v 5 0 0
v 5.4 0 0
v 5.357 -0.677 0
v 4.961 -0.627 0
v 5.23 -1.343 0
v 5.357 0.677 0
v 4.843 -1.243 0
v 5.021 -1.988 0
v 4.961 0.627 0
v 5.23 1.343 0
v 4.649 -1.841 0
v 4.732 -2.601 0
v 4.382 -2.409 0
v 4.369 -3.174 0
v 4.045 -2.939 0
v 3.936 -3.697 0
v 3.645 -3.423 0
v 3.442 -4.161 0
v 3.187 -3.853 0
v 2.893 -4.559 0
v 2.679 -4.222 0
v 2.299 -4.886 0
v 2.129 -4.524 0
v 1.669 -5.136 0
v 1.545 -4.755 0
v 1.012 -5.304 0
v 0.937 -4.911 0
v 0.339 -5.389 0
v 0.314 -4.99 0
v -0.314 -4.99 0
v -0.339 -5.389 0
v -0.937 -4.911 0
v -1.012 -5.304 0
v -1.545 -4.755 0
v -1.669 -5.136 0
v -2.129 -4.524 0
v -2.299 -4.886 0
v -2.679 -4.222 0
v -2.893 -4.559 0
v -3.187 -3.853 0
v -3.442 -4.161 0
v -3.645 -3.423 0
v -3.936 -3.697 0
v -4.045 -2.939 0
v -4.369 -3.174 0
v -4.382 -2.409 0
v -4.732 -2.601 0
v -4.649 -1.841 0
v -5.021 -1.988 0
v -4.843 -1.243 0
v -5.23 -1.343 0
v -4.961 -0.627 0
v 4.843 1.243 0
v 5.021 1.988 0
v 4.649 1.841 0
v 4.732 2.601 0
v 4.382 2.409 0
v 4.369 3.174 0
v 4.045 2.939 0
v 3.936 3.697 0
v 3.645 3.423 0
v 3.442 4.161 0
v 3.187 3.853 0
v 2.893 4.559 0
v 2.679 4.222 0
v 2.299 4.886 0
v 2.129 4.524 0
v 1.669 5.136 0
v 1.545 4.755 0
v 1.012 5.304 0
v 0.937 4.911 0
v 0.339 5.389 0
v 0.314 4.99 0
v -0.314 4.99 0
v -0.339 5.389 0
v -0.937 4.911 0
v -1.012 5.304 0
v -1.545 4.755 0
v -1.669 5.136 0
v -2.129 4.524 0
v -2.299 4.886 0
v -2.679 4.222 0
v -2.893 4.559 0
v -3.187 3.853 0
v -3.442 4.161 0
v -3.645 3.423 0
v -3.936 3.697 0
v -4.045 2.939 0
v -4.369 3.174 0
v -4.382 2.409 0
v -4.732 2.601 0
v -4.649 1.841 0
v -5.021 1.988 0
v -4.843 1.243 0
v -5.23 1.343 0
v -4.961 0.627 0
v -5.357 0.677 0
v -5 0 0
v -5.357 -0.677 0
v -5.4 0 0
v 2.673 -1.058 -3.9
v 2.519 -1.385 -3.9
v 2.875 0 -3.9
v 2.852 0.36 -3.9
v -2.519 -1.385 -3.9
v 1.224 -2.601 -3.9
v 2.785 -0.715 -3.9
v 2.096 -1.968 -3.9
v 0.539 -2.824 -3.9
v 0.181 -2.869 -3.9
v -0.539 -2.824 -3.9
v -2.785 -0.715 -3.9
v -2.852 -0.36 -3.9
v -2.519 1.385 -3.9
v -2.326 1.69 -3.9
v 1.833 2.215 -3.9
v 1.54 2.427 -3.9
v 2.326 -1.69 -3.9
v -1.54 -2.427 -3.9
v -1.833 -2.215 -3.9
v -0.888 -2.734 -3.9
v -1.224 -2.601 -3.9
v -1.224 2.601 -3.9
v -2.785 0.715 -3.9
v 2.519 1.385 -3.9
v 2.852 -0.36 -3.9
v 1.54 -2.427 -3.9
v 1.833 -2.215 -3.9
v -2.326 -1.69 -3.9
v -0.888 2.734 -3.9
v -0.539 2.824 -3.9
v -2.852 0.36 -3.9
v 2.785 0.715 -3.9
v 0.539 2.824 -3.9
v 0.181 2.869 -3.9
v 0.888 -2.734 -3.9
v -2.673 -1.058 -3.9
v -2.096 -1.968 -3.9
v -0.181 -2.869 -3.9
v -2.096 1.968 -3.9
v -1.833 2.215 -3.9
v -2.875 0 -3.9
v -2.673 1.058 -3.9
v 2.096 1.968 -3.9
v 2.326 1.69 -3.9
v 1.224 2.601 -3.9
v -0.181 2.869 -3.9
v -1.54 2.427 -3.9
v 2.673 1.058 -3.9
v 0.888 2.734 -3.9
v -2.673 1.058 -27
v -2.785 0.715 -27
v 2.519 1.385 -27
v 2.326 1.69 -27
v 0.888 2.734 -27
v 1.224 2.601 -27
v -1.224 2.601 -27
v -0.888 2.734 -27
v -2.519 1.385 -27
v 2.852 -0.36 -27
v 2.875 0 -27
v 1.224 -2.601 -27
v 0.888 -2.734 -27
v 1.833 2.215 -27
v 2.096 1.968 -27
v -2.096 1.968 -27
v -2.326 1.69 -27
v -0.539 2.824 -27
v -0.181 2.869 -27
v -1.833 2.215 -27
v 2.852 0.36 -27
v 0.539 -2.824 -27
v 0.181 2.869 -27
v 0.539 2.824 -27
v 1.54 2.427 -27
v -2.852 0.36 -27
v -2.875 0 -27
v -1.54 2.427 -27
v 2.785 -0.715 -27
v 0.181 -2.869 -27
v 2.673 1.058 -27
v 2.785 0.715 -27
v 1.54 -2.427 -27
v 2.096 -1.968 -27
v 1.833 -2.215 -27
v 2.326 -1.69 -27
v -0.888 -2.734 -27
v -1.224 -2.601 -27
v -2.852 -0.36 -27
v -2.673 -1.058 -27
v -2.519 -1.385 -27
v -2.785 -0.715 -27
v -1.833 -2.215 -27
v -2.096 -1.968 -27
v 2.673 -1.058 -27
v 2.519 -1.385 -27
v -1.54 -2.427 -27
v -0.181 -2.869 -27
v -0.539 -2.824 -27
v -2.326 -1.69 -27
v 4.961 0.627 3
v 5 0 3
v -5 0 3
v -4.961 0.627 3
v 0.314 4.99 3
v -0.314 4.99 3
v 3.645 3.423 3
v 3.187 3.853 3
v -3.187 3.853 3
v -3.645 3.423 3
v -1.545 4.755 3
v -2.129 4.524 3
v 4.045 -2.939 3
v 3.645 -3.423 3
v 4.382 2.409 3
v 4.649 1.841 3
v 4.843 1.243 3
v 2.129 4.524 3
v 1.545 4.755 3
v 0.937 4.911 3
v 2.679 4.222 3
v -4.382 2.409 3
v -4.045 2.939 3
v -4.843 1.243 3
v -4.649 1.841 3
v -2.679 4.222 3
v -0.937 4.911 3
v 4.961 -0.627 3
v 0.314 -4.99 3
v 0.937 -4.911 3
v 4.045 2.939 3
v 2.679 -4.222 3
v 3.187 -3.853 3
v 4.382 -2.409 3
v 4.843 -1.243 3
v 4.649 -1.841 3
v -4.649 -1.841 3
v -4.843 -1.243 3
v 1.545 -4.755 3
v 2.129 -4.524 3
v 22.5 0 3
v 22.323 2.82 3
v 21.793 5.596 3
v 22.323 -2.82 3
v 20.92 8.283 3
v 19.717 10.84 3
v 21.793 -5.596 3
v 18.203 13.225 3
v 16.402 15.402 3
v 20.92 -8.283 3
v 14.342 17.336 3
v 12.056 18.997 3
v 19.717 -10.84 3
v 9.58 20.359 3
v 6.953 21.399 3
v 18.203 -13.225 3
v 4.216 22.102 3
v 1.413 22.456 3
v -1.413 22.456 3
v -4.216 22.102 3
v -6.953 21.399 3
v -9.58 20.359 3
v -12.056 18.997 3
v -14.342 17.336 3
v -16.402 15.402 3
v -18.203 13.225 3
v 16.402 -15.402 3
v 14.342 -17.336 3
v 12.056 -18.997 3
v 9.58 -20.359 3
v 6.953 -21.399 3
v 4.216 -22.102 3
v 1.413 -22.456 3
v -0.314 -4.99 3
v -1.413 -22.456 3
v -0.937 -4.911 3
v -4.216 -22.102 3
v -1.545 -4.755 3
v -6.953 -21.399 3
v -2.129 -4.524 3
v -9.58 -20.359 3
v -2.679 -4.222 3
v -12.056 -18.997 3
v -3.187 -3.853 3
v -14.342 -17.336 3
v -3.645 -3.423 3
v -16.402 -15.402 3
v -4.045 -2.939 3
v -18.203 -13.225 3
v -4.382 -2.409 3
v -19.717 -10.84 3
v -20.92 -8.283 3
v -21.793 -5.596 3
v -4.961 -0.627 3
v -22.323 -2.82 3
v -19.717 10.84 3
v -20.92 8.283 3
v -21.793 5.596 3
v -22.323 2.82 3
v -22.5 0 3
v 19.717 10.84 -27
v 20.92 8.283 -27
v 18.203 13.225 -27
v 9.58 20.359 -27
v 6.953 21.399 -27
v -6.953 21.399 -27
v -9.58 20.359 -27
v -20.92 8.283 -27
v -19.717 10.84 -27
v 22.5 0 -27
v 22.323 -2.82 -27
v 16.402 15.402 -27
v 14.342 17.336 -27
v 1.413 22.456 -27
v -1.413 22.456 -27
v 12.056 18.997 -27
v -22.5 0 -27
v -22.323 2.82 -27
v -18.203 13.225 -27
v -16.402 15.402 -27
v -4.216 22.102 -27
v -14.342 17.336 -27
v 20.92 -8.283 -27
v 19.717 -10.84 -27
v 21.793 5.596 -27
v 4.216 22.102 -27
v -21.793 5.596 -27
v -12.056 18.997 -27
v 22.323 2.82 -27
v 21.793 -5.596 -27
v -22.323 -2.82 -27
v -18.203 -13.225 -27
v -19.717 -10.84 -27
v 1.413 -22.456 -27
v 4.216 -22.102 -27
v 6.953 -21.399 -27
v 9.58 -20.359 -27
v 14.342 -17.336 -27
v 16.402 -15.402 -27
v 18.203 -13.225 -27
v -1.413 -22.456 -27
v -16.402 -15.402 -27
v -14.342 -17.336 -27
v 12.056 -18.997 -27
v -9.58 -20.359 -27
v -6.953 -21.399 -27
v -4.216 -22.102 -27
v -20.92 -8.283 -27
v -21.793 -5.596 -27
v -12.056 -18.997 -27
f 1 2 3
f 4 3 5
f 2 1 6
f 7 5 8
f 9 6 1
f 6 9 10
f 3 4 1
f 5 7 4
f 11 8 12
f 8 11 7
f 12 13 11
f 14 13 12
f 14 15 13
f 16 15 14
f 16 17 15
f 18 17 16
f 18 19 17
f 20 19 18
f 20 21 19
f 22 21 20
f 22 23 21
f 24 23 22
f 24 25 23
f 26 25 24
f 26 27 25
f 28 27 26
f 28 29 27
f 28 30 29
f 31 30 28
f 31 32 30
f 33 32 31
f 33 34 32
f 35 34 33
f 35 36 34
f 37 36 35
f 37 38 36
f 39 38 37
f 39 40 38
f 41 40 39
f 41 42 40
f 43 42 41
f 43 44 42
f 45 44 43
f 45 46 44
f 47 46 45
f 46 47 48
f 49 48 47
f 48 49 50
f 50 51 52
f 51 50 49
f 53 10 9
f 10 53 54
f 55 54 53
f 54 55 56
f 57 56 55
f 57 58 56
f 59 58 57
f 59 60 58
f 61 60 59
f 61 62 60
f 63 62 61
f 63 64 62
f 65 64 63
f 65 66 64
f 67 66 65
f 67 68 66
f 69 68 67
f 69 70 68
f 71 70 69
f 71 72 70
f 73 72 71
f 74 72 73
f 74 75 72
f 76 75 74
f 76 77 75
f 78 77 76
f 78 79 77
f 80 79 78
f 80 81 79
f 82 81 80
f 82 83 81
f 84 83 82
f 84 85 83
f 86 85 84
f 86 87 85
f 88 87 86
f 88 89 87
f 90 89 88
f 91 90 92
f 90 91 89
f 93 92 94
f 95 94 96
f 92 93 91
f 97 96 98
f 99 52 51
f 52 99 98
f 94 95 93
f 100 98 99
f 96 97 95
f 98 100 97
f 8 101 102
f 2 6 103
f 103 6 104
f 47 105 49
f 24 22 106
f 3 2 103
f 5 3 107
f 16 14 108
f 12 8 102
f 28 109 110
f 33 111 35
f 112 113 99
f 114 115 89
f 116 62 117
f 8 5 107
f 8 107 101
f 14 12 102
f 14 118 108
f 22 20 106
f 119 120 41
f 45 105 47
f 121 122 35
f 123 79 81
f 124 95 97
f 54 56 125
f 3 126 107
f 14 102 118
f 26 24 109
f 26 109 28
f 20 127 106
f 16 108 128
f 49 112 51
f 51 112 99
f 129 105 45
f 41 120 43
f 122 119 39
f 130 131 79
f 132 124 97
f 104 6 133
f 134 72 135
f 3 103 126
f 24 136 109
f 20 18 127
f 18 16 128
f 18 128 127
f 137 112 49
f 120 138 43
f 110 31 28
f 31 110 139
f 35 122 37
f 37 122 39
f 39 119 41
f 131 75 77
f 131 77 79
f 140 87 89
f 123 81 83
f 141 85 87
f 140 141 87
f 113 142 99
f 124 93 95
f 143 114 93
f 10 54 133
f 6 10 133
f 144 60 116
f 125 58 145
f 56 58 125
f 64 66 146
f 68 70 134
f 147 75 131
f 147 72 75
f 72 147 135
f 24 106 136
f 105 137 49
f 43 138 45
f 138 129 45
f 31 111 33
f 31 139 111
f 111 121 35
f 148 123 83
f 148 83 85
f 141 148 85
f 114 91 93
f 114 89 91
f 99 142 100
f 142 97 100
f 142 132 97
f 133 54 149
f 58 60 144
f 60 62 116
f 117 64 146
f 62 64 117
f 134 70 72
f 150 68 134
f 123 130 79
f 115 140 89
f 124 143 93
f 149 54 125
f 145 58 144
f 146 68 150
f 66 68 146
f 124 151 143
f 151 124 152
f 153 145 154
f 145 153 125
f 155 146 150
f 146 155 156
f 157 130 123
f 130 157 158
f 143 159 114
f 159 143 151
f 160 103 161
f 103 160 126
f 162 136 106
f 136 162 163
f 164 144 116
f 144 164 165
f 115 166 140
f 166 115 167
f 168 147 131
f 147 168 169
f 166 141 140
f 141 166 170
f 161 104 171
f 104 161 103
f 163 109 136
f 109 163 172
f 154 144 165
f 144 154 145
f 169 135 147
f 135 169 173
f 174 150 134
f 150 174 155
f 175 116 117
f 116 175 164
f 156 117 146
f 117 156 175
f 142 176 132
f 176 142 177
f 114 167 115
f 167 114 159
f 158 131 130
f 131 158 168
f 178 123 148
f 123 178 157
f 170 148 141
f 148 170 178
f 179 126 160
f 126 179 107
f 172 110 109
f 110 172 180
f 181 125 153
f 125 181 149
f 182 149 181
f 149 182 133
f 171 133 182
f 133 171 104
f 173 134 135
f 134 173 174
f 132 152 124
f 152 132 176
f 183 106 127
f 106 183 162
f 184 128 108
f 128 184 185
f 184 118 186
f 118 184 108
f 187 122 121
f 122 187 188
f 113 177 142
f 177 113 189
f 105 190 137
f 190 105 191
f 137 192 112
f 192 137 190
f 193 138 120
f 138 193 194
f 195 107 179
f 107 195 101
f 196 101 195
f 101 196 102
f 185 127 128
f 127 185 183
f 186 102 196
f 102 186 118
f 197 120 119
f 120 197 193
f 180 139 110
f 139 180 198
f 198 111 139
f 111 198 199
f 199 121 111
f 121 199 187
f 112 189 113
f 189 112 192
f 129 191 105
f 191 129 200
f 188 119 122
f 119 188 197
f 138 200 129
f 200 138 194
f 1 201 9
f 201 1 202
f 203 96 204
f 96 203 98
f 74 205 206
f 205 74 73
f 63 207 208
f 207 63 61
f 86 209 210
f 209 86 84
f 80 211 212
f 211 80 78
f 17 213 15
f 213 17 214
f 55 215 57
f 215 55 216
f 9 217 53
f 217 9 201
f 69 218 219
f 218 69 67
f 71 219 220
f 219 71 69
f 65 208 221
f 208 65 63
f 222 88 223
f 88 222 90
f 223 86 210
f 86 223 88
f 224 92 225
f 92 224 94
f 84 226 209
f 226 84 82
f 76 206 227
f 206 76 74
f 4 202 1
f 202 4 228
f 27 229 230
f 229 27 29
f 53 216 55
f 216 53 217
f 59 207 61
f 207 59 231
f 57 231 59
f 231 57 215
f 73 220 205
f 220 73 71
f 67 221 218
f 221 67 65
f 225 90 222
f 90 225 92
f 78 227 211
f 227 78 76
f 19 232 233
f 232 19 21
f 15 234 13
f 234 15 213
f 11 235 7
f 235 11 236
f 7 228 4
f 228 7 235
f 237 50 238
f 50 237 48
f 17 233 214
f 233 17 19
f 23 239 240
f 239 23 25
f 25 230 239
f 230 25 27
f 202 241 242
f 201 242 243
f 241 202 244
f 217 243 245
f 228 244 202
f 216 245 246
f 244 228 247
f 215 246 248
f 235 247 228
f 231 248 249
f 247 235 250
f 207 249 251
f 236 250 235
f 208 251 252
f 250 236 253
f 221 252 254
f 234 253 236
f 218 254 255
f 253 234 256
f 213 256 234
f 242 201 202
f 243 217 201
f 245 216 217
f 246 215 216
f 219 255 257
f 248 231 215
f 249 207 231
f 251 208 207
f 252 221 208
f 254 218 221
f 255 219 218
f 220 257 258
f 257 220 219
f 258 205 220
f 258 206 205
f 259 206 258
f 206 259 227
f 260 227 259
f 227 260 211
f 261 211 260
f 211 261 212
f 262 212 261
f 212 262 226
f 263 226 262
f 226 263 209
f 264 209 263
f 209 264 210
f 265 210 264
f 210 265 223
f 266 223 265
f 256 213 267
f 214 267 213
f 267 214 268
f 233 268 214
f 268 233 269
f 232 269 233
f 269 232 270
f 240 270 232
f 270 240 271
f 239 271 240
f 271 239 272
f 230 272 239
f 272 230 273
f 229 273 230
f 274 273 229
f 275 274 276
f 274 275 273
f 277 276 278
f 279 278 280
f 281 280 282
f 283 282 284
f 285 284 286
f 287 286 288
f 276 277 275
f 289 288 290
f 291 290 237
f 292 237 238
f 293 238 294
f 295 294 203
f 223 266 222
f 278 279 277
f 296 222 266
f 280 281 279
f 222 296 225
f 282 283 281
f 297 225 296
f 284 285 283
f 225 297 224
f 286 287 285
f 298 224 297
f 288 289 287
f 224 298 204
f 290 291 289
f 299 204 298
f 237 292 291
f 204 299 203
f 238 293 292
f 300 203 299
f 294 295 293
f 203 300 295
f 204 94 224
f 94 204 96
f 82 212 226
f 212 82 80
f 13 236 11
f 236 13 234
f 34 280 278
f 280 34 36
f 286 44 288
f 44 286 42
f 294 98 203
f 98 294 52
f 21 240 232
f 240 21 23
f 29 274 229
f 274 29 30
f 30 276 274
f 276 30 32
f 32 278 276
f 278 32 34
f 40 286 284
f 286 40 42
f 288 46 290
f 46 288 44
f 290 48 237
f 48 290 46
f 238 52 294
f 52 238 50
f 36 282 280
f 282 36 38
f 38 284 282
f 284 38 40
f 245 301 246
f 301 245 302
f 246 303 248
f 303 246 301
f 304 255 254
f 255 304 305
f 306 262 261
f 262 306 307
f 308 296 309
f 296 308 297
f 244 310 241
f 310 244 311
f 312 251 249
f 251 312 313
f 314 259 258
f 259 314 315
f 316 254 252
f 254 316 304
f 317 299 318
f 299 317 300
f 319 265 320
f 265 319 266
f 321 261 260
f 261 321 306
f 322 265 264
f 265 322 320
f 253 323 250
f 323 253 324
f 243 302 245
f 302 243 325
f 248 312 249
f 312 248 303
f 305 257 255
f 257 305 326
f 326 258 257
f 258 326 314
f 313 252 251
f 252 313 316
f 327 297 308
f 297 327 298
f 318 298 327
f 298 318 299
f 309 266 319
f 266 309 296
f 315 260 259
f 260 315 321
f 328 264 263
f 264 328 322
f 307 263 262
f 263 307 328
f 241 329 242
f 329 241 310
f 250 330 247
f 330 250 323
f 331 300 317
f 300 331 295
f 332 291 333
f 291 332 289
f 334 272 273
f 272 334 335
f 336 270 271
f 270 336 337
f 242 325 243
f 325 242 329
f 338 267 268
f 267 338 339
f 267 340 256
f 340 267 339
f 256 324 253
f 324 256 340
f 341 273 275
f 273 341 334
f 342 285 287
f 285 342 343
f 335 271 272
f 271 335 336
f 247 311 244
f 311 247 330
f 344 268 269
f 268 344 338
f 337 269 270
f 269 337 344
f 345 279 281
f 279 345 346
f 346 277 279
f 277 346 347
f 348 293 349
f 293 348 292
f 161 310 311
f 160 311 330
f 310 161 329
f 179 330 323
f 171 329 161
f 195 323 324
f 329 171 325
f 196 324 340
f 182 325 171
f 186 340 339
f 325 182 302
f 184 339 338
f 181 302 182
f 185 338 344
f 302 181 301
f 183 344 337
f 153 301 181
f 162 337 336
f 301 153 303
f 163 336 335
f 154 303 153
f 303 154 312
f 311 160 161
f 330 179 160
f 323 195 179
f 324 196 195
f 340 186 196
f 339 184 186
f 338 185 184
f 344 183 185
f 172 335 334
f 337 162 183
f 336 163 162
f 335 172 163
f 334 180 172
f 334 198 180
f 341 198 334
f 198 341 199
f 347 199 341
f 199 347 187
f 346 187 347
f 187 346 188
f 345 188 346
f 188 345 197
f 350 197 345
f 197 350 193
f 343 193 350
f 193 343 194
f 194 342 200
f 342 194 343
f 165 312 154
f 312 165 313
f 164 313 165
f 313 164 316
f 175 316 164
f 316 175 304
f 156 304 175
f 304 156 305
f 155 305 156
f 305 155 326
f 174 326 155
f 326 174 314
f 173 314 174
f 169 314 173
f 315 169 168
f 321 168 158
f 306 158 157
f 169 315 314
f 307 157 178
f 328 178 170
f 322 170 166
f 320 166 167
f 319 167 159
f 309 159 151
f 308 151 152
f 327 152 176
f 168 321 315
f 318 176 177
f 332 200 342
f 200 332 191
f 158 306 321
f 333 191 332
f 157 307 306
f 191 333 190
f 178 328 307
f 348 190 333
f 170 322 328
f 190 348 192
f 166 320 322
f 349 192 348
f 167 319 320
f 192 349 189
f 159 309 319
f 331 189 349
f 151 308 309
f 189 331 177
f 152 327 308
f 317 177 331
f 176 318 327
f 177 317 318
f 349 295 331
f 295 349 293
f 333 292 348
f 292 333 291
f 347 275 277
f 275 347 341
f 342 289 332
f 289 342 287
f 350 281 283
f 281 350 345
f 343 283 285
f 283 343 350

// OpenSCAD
$fn = 50;

difference() {
	union() {
		translate(v = [0, 0, -27.0]) {
			cylinder(h = 30, r = 22.5);
		}
	}
	union() {
		translate(v = [0, 0, 0]) {
			rotate(a = [0, 0, 0]) {
				difference() {
					union() {
						translate(v = [0, 0, -30.0]) {
							cylinder(h = 30, r = 2.6);
						}
						translate(v = [0, 0, -3.9]) {
							cylinder(h = 3.9, r1 = 2.875, r2 = 5.4);
						}
						translate(v = [0, 0, -30.0]) {
							cylinder(h = 30, r = 2.875);
						}
						translate(v = [0, 0, -30.0]) {
							cylinder(h = 30, r = 2.6);
						}
					}
					union();
				}
			}
		}
		#cylinder(h = 3, r = 5.0);
	}
}
